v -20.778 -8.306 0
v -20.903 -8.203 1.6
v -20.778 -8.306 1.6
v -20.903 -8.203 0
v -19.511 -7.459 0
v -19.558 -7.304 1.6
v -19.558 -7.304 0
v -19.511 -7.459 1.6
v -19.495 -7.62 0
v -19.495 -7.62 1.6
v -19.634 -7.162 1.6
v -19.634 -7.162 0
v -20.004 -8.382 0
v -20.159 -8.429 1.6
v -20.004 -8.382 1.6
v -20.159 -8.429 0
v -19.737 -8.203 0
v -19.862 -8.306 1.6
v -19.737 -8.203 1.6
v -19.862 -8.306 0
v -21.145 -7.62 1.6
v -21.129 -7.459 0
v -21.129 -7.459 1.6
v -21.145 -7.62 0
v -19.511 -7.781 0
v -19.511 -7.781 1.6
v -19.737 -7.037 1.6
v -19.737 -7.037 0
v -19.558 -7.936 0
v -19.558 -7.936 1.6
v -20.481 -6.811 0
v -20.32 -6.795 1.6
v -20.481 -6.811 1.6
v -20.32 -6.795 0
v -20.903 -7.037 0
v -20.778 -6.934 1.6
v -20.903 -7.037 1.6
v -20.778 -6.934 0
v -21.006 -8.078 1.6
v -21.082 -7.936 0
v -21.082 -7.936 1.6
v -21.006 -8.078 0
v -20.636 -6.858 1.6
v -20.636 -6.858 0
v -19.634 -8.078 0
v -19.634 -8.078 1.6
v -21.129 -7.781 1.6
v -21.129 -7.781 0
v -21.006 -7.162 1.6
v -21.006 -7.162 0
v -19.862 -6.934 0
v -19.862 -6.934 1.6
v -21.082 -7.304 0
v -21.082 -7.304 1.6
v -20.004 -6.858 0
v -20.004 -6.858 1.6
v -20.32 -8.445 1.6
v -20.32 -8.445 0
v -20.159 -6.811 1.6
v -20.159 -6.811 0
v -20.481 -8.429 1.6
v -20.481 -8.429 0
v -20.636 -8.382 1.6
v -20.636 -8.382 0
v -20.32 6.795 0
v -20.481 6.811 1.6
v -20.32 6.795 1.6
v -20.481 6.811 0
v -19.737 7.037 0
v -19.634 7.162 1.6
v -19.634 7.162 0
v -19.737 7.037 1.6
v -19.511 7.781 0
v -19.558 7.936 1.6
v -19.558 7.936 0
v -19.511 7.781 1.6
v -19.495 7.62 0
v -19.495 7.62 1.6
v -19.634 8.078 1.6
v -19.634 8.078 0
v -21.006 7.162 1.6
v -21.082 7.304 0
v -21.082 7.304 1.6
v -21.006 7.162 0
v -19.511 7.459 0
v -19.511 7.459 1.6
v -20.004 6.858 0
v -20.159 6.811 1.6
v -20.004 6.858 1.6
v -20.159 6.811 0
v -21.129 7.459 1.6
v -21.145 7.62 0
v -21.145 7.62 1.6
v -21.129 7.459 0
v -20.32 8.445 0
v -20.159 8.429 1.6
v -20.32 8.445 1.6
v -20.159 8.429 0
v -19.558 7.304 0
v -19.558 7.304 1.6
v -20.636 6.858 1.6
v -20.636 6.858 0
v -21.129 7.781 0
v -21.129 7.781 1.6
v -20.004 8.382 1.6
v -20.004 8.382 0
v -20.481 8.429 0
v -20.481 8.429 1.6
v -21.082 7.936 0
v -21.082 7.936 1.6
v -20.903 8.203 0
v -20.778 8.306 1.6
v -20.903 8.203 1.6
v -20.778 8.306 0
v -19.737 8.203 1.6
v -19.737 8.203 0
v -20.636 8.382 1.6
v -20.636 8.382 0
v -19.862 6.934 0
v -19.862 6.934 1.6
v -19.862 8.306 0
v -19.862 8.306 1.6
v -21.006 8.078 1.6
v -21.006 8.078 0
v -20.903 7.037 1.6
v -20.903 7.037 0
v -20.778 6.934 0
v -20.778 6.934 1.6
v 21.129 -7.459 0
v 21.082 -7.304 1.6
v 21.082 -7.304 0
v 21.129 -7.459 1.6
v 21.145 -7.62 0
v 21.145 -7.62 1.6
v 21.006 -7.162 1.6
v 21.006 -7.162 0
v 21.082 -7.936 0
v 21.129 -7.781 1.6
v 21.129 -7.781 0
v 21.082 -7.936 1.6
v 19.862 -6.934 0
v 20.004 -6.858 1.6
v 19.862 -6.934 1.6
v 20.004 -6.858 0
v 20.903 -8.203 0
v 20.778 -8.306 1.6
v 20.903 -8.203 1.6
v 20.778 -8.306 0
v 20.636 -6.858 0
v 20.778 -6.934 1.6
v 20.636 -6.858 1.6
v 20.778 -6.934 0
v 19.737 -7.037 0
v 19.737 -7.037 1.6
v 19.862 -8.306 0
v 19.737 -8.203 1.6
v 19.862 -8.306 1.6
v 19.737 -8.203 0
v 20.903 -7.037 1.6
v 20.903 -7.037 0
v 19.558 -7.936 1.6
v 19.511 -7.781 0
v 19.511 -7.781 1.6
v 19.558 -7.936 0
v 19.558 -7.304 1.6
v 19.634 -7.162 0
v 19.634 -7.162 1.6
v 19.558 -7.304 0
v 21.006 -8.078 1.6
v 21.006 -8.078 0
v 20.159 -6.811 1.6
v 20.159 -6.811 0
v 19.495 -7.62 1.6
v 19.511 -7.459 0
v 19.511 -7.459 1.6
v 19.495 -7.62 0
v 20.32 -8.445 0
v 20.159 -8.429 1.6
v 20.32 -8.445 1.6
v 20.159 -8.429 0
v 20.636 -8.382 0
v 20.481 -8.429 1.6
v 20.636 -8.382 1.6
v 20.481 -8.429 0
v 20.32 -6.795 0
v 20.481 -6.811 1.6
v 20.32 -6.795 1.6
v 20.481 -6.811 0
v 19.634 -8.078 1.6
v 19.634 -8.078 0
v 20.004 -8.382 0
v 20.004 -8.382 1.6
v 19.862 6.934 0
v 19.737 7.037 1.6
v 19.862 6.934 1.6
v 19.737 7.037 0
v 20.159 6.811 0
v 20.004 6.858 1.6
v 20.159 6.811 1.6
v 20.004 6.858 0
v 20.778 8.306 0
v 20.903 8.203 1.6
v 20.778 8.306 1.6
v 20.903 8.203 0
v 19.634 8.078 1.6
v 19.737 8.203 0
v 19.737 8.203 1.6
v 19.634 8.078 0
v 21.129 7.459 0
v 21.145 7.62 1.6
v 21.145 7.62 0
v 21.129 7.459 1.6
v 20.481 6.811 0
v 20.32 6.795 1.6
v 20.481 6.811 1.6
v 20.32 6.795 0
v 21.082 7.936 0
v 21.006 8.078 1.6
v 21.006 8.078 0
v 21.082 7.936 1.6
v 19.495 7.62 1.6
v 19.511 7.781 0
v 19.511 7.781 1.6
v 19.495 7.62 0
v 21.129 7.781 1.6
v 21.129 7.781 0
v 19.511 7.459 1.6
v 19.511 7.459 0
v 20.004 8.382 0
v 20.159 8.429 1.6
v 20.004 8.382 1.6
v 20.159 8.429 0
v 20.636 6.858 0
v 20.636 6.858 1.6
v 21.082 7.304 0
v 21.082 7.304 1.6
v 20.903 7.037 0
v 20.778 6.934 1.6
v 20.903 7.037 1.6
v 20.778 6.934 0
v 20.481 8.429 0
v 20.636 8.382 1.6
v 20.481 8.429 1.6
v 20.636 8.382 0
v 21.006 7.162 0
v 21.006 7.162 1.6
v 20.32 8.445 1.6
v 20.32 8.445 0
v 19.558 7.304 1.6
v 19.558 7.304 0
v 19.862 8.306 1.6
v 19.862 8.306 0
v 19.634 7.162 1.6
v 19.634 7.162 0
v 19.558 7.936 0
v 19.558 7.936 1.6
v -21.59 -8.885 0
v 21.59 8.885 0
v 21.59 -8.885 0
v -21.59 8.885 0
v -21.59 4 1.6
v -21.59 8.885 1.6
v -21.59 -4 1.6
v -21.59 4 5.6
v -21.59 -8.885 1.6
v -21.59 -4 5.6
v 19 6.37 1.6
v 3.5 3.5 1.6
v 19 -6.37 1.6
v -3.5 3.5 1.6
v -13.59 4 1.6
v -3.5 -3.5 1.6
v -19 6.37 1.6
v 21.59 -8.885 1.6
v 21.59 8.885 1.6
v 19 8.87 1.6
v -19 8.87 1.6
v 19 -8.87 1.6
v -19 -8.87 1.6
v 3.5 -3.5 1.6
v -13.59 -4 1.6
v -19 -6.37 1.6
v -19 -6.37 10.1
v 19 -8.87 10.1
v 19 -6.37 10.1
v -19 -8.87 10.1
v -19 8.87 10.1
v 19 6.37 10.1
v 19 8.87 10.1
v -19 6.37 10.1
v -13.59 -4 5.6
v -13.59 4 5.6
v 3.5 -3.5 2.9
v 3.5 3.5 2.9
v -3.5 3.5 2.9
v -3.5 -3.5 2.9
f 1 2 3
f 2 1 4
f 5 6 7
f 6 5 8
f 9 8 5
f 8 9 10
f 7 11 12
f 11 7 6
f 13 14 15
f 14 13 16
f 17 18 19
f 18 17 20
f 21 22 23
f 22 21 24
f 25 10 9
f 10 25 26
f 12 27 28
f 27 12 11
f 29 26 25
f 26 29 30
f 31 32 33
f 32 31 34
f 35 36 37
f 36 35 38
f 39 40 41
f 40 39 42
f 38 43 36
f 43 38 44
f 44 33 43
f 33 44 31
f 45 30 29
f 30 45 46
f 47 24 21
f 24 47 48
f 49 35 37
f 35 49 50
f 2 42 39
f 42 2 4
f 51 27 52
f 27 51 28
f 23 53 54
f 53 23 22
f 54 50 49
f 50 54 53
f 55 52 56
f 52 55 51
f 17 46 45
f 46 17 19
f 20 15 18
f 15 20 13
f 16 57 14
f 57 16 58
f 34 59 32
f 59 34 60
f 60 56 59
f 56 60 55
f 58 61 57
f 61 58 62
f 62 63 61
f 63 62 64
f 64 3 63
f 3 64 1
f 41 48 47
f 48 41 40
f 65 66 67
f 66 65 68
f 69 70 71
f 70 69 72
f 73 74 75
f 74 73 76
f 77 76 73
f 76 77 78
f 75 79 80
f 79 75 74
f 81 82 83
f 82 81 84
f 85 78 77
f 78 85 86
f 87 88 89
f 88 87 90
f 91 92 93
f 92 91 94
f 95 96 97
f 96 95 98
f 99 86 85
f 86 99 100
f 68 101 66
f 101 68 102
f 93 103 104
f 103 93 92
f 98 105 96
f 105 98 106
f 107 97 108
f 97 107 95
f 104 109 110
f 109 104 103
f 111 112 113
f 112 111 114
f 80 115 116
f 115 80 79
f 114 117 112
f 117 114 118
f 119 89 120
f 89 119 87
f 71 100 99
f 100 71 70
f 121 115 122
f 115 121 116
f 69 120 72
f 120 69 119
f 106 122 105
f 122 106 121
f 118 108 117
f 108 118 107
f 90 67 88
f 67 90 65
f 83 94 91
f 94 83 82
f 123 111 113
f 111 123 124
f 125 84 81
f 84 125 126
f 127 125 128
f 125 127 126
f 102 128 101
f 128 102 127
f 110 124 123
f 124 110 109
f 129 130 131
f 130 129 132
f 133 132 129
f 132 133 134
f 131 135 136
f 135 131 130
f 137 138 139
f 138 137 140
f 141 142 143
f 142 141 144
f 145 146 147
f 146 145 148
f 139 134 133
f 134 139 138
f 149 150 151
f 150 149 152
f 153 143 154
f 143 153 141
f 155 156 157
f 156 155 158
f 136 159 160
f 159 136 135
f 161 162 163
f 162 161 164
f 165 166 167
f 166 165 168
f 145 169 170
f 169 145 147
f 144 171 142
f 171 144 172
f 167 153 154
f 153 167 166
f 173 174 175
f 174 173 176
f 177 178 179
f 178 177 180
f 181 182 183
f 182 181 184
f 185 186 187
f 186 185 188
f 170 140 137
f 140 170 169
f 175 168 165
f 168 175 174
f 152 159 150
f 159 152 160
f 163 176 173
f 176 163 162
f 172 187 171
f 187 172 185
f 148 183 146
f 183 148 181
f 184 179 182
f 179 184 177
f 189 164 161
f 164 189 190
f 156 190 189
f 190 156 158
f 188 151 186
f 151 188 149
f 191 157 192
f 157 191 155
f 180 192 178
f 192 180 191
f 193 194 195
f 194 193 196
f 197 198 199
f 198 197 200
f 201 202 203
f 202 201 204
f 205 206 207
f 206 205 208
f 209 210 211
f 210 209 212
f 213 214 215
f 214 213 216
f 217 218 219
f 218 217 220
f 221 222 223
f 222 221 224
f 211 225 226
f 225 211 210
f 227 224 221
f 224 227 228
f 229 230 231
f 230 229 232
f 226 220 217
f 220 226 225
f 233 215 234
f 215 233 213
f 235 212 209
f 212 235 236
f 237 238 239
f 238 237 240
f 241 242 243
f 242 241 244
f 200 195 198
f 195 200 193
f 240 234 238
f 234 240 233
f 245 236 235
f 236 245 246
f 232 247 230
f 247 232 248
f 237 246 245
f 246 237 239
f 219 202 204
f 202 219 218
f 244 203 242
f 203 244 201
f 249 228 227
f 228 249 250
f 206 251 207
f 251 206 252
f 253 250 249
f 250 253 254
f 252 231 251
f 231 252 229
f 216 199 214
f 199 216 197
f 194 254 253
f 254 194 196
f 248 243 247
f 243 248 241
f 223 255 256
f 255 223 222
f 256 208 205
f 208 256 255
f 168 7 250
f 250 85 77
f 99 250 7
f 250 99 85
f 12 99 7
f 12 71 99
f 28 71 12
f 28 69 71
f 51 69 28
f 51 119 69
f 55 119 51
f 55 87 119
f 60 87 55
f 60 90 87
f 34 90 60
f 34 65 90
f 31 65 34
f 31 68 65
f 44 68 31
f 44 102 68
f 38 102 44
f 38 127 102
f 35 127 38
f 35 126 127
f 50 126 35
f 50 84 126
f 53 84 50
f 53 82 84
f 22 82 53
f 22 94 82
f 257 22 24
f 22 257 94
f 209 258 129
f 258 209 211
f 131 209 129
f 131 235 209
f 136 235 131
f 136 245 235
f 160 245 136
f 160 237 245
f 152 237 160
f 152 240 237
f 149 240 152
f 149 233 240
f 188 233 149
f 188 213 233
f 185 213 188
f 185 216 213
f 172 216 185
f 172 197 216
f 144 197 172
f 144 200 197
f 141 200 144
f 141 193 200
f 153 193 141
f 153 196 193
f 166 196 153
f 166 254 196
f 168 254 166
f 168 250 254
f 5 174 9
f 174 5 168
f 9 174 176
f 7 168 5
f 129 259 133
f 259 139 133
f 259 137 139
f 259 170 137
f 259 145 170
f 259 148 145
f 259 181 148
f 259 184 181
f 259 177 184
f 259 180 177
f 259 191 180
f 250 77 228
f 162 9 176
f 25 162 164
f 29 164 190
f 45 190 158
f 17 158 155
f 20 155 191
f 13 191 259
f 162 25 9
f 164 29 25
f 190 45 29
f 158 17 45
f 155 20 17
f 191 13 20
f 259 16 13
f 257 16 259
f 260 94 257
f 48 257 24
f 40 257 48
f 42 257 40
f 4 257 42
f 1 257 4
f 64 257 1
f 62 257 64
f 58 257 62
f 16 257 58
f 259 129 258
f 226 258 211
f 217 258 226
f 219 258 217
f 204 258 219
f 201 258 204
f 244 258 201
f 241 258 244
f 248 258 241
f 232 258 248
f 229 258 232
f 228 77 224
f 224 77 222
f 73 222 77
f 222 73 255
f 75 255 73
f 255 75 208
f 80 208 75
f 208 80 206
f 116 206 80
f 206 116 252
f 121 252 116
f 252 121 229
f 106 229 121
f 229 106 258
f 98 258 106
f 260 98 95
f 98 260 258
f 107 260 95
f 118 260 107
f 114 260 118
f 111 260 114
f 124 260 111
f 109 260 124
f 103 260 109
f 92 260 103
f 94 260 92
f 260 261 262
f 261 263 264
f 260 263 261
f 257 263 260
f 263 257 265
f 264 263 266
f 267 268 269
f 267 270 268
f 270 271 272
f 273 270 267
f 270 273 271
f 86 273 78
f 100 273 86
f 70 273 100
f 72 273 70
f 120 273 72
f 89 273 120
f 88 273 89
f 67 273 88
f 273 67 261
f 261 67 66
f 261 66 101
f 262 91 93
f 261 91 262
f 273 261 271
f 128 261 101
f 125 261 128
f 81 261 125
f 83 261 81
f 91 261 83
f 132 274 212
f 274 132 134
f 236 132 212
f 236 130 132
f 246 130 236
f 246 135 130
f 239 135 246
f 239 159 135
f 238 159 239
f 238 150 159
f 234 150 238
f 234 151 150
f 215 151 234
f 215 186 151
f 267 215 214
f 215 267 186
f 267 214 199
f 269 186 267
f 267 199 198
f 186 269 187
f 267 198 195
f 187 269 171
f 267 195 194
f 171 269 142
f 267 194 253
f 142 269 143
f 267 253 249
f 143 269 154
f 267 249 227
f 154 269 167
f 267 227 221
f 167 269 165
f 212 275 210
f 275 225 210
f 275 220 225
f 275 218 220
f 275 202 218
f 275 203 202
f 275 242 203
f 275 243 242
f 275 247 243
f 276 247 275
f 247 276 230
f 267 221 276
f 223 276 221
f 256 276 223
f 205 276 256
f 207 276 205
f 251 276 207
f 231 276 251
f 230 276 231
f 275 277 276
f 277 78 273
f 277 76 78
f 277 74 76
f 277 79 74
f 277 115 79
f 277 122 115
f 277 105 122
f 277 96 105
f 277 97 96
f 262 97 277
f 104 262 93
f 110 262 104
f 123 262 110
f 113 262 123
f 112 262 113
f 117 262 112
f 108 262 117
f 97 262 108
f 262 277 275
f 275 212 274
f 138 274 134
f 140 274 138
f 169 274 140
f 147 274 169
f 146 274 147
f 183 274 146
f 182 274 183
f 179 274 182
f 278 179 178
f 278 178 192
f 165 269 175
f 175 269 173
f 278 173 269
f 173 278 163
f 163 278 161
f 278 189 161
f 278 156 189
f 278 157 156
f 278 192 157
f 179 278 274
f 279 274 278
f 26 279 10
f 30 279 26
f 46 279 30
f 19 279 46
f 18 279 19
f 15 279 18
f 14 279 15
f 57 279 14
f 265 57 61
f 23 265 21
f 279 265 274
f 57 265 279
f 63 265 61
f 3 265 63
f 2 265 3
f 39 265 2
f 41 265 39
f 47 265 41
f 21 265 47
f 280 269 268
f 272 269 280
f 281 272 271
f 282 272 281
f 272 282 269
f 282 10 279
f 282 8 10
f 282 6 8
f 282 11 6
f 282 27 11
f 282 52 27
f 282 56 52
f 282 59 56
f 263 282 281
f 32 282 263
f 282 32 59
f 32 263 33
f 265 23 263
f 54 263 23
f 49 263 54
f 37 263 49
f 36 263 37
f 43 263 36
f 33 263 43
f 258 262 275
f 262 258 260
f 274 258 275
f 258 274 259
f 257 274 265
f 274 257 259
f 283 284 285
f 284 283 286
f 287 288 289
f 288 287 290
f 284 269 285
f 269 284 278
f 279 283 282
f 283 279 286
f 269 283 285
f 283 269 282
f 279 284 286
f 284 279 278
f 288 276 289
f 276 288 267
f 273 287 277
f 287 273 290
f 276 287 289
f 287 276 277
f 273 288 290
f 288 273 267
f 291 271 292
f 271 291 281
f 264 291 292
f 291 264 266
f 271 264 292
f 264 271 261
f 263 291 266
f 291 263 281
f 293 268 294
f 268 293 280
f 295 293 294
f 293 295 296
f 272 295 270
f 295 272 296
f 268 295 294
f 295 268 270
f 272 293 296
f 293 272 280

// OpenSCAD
// Arduino Nano 3.0 visual source. Units: millimeters; origin: bottom-center.
$fn = 32;

pcb = [43.18, 17.77, 1.6];
hole_d = 1.65;
hole_dx = 40.64;
hole_dy = 15.24;
header_h = 8.5;

module board() {
  difference() {
    linear_extrude(pcb[2]) square([pcb[0], pcb[1]], center = true);
    for (x = [-hole_dx / 2, hole_dx / 2])
      for (y = [-hole_dy / 2, hole_dy / 2])
        translate([x, y, -0.1]) cylinder(d = hole_d, h = pcb[2] + 0.2, $fn = 32);
  }
}

color("#2e7d5b") board();
color("#b7b7b7") translate([-17.59, 0, pcb[2] + 2]) cube([8, 8, 4], center = true);
color("#1a1a1a") translate([0, 0, pcb[2] + 0.65]) cube([7, 7, 1.3], center = true);

for (y = [-7.62, 7.62]) {
  color("#181818") translate([0, y, pcb[2] + header_h / 2]) cube([38, 2.5, header_h], center = true);
  for (x = [-17.78 : 2.54 : 17.78])
    color("#d6a53a") translate([x, y, pcb[2] + header_h / 2]) cube([0.6, 0.6, header_h], center = true);
}
